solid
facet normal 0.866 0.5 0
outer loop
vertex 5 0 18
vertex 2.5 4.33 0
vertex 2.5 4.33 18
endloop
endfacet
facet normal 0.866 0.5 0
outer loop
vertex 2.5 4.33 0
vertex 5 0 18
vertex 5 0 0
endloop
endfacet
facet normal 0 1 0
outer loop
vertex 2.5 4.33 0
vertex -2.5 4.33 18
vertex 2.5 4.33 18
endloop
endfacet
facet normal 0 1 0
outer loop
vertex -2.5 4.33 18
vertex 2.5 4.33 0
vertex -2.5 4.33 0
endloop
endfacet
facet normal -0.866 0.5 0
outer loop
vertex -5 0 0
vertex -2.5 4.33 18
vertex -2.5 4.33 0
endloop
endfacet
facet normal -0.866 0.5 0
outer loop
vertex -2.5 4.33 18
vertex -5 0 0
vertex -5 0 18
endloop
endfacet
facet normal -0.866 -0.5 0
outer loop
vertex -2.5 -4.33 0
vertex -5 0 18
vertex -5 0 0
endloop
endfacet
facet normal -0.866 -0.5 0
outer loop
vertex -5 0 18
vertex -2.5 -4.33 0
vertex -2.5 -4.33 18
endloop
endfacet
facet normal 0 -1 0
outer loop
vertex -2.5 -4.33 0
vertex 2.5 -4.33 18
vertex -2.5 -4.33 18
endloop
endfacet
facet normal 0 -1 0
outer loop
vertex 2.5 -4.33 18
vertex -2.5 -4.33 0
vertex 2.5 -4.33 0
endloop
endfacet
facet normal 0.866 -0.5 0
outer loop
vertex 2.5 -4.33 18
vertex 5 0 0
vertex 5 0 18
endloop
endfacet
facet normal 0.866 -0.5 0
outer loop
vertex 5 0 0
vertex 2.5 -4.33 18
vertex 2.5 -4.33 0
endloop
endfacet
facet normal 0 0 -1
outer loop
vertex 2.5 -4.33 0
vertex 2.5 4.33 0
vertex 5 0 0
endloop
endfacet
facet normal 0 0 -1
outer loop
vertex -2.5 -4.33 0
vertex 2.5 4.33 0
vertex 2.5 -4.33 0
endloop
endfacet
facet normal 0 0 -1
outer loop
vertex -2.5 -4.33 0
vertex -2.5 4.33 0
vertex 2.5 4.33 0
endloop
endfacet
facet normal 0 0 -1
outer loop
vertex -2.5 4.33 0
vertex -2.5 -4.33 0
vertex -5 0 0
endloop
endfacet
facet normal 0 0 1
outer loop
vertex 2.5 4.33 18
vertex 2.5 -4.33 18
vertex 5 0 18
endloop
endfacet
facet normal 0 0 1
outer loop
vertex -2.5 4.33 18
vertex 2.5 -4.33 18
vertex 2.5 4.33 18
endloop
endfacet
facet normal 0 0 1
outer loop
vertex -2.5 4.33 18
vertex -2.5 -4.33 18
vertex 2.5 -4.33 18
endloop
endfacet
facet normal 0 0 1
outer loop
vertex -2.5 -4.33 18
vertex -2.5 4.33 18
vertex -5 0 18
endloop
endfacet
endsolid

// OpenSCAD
sirka=5;
vyska=18;

color("red") cylinder(vyska, sirka, sirka, $fn = 6);
